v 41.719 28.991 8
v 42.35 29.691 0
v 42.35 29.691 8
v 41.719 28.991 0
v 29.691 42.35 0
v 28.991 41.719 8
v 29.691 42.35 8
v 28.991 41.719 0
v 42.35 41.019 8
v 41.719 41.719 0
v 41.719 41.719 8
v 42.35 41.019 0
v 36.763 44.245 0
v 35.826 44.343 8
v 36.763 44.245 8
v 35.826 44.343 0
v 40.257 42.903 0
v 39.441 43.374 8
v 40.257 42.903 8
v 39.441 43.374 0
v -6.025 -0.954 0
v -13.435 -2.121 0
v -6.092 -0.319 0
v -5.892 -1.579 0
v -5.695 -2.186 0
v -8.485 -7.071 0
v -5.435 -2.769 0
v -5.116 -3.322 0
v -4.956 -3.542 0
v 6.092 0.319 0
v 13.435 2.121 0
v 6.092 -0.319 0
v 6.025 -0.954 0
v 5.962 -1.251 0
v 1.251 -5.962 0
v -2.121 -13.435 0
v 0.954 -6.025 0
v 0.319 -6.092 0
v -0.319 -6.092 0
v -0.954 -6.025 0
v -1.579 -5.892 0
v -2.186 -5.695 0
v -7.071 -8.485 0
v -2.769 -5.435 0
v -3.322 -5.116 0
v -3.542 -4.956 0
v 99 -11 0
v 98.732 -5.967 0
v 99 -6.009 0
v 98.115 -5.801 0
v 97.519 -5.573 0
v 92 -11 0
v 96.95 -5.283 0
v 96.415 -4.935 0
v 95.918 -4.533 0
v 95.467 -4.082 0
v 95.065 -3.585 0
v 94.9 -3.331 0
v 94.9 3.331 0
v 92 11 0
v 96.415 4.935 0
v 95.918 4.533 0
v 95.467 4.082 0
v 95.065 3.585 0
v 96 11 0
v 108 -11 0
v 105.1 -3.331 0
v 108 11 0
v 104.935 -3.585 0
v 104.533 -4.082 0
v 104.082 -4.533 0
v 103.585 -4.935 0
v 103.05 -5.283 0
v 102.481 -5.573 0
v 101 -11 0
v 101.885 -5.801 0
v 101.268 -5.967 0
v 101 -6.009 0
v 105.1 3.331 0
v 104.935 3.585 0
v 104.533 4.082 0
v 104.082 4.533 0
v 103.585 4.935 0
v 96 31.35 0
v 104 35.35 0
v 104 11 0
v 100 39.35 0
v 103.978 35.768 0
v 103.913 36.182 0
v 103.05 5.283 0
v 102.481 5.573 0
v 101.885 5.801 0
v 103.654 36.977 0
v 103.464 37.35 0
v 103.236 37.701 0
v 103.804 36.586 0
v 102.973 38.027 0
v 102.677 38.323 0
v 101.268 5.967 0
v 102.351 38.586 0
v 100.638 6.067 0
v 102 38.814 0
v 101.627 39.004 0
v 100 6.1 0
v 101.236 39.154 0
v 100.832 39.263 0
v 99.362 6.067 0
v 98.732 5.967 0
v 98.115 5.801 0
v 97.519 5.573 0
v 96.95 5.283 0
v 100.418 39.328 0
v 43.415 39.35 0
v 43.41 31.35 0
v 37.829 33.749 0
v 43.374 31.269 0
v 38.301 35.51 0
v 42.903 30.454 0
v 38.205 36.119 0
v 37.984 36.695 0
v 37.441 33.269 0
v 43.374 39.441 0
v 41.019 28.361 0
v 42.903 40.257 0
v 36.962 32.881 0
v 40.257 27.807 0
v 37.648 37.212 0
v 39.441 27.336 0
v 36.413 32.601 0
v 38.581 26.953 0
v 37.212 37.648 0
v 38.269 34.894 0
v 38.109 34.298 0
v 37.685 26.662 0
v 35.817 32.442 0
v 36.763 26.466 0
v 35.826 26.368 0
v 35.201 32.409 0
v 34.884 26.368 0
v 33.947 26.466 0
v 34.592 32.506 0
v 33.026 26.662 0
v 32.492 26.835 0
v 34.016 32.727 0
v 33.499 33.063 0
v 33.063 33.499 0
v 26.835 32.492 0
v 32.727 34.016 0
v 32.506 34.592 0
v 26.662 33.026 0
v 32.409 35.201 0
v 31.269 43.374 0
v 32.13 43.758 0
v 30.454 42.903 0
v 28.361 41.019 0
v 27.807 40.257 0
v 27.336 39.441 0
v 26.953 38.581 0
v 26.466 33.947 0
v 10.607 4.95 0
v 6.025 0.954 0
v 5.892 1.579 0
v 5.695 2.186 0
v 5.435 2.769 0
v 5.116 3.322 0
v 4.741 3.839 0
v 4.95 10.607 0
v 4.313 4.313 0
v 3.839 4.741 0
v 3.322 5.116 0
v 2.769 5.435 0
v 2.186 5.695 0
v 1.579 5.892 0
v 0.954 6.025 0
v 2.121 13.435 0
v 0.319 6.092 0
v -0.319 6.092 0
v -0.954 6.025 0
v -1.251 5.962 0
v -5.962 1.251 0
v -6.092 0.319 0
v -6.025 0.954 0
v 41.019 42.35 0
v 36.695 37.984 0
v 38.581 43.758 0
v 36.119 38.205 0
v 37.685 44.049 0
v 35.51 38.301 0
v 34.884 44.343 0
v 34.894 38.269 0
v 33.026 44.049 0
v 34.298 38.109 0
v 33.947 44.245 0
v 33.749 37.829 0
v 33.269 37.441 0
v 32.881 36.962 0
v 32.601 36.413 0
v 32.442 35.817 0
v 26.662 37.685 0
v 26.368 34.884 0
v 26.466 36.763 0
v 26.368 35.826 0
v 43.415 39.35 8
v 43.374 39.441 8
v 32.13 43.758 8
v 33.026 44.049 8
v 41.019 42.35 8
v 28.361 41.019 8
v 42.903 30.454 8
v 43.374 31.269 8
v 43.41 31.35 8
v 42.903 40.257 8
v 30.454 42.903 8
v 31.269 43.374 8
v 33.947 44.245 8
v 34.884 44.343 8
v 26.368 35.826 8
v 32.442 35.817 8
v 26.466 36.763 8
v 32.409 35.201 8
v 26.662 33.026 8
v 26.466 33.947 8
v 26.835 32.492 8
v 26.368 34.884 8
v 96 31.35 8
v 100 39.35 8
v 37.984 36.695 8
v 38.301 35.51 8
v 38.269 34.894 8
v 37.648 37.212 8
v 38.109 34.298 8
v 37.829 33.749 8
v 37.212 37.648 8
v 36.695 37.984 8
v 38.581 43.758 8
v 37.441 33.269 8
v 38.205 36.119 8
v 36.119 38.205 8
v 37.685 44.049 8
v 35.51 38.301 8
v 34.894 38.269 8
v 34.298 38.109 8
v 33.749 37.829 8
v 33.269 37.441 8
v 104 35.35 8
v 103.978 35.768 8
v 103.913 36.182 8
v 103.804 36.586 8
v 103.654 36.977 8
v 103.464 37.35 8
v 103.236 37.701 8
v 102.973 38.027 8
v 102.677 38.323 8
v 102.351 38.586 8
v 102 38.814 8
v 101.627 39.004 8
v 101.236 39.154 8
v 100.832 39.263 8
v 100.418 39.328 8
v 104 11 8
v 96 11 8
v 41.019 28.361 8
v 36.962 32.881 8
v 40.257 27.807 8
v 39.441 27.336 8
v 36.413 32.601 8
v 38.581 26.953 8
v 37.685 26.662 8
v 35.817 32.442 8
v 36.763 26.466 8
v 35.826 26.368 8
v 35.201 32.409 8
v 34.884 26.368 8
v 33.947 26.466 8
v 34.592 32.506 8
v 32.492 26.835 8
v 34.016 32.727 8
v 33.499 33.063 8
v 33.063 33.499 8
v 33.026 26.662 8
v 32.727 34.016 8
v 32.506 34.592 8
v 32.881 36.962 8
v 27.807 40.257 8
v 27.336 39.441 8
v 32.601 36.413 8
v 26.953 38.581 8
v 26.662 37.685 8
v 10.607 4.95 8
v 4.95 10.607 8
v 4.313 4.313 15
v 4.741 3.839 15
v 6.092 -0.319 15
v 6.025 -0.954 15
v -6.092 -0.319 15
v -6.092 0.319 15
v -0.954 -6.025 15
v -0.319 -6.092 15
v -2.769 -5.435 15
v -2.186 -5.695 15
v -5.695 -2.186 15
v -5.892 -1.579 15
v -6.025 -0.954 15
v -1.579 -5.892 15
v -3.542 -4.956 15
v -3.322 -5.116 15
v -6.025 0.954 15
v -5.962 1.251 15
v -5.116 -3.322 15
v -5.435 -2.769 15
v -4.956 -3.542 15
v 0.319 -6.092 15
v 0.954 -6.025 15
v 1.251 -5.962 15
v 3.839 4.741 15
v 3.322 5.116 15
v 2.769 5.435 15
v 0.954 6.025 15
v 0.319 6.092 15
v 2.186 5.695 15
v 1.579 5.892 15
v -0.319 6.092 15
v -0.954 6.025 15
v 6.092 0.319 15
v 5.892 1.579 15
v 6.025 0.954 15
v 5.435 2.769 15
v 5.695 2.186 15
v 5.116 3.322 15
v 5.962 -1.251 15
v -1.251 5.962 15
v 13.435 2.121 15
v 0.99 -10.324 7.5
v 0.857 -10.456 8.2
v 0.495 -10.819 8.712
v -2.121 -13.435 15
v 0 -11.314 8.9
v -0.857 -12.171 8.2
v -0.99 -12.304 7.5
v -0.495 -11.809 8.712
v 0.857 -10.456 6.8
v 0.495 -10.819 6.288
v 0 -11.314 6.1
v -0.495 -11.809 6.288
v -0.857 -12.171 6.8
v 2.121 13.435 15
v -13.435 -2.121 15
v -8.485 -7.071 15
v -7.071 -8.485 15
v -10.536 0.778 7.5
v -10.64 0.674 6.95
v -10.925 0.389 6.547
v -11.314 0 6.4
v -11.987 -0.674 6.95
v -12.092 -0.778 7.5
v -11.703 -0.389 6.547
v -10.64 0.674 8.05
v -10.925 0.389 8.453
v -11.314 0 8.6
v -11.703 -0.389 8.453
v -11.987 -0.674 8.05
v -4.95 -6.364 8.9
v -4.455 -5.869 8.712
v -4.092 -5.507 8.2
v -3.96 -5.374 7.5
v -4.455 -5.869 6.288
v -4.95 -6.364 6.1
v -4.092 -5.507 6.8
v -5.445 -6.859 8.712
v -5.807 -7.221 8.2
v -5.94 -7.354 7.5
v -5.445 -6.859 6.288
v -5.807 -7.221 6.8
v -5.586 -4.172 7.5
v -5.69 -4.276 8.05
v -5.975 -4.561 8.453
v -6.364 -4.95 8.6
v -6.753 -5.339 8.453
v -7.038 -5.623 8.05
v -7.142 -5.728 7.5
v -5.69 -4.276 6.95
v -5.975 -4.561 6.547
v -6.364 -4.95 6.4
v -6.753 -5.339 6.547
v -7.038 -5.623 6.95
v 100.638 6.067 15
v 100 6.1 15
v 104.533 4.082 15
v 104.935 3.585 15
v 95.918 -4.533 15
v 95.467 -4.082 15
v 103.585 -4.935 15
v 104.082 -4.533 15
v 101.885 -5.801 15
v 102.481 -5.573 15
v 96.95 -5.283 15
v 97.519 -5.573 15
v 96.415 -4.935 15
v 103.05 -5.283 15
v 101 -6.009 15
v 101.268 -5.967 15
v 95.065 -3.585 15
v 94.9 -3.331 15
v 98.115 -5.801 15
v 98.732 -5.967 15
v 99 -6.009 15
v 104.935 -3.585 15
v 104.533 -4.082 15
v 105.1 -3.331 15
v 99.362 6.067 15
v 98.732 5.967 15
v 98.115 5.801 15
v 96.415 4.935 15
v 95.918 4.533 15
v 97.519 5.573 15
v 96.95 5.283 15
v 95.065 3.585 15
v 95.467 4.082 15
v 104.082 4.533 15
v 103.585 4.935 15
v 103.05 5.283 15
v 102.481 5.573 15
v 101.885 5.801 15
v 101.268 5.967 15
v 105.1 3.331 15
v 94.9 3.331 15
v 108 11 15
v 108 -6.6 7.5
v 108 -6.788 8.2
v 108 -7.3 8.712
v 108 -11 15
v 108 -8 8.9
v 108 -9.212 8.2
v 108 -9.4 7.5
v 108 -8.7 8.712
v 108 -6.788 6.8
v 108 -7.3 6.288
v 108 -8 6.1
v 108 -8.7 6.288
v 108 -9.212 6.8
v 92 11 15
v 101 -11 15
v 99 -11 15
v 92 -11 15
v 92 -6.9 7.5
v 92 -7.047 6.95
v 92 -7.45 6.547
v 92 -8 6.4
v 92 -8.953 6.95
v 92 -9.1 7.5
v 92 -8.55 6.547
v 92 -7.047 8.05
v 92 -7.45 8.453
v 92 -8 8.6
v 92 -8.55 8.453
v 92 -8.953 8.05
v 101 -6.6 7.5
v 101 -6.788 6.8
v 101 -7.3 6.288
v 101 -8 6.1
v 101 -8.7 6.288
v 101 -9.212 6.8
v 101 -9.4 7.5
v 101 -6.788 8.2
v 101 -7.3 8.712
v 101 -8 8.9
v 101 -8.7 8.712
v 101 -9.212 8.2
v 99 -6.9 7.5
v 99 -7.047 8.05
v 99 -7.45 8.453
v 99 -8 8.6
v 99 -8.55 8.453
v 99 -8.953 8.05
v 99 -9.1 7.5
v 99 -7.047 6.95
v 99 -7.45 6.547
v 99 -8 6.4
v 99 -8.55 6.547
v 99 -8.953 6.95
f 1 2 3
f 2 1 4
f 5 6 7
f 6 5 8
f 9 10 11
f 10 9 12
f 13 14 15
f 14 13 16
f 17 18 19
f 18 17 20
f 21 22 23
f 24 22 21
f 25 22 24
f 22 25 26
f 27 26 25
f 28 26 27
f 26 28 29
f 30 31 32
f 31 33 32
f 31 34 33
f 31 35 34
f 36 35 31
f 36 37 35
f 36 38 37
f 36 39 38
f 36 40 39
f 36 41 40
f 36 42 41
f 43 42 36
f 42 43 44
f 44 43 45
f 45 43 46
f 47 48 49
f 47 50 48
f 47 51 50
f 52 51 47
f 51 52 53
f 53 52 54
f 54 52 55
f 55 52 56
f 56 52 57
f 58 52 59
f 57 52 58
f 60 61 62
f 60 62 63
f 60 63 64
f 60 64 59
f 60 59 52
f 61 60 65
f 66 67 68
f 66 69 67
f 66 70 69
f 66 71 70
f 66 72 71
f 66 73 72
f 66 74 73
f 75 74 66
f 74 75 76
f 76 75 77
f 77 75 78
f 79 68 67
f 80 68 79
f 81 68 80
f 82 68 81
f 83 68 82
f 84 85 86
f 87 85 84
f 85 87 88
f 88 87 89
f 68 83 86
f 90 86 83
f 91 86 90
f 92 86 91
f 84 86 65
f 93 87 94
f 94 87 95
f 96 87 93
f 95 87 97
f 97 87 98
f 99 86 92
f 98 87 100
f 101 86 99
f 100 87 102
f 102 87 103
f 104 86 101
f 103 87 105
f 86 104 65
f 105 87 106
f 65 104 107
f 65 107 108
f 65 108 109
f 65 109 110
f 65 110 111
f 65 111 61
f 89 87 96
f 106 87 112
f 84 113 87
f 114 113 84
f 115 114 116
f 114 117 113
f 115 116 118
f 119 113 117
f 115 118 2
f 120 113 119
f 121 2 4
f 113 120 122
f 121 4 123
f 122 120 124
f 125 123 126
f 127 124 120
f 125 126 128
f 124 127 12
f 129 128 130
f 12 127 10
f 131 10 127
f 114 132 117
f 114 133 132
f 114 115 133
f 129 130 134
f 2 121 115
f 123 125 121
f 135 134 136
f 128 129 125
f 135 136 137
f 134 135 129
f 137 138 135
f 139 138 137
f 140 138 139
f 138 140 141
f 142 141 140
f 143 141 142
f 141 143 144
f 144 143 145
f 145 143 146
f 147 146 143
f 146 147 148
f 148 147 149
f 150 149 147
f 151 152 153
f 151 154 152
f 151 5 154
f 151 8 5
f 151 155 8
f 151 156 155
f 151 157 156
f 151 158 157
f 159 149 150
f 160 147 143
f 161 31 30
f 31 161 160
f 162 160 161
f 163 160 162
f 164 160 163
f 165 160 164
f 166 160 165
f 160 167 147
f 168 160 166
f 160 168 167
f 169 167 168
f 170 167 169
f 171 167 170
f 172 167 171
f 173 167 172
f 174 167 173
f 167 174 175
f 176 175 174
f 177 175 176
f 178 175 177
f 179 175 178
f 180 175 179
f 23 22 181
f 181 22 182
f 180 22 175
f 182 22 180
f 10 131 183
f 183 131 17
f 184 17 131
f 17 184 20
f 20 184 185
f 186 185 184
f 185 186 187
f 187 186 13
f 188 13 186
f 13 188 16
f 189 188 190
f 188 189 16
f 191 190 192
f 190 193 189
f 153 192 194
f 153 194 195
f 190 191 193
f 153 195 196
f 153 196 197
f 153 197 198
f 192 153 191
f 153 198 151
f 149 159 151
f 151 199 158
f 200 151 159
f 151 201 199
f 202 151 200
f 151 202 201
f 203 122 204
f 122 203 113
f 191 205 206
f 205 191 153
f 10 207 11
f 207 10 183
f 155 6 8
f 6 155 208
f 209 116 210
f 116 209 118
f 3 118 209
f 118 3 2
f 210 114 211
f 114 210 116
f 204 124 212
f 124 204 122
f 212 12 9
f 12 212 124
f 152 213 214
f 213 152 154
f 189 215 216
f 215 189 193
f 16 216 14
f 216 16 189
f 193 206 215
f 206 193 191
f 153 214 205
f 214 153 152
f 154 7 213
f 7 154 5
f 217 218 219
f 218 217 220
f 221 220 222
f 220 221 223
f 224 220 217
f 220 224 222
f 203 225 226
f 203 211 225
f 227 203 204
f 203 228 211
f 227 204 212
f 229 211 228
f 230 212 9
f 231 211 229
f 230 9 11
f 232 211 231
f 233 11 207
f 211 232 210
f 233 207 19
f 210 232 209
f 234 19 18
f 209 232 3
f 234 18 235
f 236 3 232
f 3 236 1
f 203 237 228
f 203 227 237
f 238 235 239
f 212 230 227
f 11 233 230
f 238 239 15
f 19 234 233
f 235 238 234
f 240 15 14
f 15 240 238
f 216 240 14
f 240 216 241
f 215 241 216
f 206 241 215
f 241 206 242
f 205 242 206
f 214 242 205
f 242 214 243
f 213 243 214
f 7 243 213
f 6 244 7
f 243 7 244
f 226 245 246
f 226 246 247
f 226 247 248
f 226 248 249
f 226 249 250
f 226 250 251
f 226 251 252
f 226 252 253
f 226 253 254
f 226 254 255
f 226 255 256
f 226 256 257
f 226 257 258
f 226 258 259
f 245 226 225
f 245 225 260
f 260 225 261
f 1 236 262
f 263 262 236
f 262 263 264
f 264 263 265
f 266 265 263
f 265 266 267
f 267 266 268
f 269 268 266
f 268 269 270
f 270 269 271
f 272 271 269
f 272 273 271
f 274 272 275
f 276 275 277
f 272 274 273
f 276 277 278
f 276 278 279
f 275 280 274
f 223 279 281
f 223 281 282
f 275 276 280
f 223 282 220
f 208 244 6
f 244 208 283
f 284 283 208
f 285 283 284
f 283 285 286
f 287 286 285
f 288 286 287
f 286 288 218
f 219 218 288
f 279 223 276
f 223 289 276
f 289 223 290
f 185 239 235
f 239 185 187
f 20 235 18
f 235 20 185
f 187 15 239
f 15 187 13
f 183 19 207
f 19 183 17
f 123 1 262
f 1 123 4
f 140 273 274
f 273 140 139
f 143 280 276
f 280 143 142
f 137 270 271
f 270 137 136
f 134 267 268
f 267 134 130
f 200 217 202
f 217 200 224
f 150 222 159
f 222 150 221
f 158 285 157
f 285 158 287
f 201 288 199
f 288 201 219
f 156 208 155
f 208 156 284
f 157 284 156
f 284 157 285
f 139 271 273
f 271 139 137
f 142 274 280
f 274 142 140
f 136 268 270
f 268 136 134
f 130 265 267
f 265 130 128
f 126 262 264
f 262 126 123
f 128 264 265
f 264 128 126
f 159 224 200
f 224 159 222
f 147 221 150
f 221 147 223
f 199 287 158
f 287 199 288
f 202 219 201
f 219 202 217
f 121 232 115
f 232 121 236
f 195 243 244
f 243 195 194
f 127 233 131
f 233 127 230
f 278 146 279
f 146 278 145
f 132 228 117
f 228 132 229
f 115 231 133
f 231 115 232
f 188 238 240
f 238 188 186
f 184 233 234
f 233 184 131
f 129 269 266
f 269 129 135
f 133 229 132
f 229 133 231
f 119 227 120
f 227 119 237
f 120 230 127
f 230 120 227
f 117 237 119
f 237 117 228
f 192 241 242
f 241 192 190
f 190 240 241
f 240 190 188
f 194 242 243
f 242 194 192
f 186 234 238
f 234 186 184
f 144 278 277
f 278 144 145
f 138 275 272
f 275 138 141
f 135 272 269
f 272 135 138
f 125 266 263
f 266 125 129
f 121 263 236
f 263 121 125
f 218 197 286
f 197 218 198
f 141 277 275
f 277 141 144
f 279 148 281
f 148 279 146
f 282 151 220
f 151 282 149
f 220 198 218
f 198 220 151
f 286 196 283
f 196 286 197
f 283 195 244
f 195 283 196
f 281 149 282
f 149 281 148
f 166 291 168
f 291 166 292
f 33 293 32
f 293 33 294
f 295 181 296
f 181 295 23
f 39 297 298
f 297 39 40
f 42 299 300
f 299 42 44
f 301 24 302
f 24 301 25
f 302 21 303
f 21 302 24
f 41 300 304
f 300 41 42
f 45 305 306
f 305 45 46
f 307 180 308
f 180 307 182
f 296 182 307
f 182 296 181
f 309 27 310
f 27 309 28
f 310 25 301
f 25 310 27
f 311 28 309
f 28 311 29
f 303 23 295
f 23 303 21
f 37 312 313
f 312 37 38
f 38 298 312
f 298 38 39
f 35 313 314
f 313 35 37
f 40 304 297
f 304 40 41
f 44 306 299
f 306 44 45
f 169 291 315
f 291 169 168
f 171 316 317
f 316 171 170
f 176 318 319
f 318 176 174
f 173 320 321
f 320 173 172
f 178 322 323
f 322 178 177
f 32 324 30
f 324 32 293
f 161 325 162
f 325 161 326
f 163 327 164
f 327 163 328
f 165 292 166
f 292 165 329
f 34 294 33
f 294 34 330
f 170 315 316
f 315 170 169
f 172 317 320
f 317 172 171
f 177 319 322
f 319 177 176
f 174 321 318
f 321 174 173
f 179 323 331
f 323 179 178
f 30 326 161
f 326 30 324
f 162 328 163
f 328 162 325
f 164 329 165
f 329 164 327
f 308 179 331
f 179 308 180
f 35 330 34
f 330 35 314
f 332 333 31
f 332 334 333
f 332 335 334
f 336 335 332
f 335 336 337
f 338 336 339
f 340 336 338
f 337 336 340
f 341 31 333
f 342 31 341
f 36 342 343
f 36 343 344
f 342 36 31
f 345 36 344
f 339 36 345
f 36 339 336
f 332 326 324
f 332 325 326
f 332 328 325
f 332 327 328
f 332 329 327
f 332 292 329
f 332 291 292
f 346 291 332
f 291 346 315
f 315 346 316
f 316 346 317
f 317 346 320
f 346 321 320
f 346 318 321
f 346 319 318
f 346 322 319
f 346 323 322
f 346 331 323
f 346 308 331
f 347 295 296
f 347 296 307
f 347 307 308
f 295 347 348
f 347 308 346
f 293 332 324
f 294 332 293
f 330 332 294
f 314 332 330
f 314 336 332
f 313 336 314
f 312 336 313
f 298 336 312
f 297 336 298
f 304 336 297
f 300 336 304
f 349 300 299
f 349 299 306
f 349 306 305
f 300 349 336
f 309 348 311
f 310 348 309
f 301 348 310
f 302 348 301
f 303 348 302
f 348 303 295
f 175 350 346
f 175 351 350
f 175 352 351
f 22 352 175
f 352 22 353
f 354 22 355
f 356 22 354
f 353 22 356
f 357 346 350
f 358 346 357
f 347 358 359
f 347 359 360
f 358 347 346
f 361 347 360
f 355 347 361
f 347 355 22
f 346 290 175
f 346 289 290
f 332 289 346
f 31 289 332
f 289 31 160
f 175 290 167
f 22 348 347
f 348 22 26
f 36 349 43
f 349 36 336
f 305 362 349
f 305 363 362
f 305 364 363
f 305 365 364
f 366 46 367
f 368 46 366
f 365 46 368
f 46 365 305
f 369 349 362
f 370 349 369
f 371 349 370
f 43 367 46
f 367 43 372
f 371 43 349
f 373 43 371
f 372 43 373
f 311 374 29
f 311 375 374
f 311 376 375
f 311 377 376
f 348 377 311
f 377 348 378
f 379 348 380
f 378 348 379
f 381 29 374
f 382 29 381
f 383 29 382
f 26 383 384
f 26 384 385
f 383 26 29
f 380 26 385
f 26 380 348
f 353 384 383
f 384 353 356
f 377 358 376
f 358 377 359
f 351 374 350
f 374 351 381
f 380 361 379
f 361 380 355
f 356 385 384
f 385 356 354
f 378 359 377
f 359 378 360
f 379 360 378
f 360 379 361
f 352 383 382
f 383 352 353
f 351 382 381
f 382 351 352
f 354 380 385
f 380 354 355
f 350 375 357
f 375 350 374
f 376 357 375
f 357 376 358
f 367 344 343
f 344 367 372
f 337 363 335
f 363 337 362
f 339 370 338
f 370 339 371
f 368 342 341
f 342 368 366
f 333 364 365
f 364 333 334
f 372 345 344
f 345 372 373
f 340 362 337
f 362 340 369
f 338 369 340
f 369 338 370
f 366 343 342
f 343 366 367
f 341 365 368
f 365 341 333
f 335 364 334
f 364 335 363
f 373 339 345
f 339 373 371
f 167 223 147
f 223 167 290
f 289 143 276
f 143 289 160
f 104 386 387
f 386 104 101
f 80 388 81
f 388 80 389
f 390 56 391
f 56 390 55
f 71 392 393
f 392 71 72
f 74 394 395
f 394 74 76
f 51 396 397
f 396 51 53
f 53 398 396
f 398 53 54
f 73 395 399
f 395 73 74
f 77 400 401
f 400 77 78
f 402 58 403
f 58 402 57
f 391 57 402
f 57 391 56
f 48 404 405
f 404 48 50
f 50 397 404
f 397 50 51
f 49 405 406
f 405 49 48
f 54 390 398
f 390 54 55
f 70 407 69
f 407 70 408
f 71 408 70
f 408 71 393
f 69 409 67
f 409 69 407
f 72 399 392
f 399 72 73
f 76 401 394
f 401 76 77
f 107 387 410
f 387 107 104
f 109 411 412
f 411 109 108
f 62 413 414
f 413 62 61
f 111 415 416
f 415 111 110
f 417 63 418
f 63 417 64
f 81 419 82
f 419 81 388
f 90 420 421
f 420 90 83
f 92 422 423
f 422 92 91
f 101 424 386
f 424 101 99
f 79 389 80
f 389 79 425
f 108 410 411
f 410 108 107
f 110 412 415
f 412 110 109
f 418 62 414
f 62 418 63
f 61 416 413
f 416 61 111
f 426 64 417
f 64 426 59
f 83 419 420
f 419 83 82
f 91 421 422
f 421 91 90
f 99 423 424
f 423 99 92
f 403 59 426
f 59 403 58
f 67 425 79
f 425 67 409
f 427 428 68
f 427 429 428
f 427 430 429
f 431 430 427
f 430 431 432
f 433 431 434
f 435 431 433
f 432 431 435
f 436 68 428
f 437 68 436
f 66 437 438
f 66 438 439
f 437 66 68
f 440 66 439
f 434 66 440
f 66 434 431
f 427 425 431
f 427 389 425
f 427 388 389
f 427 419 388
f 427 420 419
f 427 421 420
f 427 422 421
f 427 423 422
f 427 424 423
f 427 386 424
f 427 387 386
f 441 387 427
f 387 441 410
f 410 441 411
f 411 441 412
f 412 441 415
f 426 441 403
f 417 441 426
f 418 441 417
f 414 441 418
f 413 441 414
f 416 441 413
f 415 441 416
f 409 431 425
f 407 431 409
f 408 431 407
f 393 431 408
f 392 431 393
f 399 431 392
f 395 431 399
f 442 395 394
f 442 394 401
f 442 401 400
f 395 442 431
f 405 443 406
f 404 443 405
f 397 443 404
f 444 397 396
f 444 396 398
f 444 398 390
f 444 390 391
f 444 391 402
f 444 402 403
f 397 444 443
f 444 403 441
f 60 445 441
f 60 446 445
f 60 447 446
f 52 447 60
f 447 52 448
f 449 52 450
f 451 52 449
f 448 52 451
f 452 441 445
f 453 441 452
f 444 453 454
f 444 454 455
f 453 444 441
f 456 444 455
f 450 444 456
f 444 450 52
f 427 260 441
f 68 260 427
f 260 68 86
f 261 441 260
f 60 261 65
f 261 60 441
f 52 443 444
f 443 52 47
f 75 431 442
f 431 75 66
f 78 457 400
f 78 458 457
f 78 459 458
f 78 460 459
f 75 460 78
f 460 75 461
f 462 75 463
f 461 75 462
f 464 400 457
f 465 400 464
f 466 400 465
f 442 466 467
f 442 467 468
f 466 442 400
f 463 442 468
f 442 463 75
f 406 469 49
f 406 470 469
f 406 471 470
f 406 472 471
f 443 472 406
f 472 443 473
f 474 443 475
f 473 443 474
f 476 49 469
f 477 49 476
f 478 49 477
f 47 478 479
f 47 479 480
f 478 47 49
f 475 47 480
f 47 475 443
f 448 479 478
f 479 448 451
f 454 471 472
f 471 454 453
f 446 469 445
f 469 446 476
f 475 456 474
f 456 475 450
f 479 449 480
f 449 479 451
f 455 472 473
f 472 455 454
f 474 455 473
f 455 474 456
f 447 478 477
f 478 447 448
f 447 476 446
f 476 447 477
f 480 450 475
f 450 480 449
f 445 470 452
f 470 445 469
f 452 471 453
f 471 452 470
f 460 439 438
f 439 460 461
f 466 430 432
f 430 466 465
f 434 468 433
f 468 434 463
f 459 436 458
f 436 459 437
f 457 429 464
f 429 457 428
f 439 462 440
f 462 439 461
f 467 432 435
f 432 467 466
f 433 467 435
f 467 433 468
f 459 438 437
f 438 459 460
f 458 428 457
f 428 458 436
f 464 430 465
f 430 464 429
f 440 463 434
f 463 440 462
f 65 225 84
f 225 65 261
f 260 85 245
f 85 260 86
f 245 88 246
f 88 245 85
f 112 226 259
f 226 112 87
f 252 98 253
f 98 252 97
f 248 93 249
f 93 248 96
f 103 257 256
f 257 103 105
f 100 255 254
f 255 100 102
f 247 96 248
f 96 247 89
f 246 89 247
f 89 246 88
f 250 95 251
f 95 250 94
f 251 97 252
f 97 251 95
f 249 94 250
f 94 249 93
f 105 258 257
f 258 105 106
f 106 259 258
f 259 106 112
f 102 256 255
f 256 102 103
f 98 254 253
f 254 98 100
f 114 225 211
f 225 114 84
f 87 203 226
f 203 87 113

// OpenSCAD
translate([43.35,31.35,0])cube([56.65,8,8]);

rotate([0,0,-45])
{
translate([0,50,0])
difference(){
cylinder(d=18,h=8,$fn=60);
translate([0,0,-1])cylinder(d=5.9,h=20,$fn=30);
}
translate([-4,10,0])cube([8,35,8]);
rotate([0,0,180])wheel_bracket();
}

translate([100,0,0])
{
translate([-4,10,0])cube([8,25.35,8]);
translate([0,35.35,0])cylinder(d=8,h=8,$fn=60);
rotate([0,0,180])wheel_bracket();
}


module wheel_bracket(){
    difference(){
translate([-8,-11,0])cube([16,22,15]);
difference(){
    translate([0,0,-1])cylinder(d=12.2,h=25,$fn=60);
    translate([6.1,0,-1])cube([2,16,40],center=true);
    translate([-6.1,0,-1])cube([2,16,40],center=true);
}
translate([-1,0,-1])cube([2,22,25]);
translate([-9,8,7.5])rotate([0,90,0])
cylinder(d=2.2,h=21,$fn=12);
translate([-9,8,7.5])rotate([0,90,0])
cylinder(d=2.8,h=10,$fn=12);
}
}
